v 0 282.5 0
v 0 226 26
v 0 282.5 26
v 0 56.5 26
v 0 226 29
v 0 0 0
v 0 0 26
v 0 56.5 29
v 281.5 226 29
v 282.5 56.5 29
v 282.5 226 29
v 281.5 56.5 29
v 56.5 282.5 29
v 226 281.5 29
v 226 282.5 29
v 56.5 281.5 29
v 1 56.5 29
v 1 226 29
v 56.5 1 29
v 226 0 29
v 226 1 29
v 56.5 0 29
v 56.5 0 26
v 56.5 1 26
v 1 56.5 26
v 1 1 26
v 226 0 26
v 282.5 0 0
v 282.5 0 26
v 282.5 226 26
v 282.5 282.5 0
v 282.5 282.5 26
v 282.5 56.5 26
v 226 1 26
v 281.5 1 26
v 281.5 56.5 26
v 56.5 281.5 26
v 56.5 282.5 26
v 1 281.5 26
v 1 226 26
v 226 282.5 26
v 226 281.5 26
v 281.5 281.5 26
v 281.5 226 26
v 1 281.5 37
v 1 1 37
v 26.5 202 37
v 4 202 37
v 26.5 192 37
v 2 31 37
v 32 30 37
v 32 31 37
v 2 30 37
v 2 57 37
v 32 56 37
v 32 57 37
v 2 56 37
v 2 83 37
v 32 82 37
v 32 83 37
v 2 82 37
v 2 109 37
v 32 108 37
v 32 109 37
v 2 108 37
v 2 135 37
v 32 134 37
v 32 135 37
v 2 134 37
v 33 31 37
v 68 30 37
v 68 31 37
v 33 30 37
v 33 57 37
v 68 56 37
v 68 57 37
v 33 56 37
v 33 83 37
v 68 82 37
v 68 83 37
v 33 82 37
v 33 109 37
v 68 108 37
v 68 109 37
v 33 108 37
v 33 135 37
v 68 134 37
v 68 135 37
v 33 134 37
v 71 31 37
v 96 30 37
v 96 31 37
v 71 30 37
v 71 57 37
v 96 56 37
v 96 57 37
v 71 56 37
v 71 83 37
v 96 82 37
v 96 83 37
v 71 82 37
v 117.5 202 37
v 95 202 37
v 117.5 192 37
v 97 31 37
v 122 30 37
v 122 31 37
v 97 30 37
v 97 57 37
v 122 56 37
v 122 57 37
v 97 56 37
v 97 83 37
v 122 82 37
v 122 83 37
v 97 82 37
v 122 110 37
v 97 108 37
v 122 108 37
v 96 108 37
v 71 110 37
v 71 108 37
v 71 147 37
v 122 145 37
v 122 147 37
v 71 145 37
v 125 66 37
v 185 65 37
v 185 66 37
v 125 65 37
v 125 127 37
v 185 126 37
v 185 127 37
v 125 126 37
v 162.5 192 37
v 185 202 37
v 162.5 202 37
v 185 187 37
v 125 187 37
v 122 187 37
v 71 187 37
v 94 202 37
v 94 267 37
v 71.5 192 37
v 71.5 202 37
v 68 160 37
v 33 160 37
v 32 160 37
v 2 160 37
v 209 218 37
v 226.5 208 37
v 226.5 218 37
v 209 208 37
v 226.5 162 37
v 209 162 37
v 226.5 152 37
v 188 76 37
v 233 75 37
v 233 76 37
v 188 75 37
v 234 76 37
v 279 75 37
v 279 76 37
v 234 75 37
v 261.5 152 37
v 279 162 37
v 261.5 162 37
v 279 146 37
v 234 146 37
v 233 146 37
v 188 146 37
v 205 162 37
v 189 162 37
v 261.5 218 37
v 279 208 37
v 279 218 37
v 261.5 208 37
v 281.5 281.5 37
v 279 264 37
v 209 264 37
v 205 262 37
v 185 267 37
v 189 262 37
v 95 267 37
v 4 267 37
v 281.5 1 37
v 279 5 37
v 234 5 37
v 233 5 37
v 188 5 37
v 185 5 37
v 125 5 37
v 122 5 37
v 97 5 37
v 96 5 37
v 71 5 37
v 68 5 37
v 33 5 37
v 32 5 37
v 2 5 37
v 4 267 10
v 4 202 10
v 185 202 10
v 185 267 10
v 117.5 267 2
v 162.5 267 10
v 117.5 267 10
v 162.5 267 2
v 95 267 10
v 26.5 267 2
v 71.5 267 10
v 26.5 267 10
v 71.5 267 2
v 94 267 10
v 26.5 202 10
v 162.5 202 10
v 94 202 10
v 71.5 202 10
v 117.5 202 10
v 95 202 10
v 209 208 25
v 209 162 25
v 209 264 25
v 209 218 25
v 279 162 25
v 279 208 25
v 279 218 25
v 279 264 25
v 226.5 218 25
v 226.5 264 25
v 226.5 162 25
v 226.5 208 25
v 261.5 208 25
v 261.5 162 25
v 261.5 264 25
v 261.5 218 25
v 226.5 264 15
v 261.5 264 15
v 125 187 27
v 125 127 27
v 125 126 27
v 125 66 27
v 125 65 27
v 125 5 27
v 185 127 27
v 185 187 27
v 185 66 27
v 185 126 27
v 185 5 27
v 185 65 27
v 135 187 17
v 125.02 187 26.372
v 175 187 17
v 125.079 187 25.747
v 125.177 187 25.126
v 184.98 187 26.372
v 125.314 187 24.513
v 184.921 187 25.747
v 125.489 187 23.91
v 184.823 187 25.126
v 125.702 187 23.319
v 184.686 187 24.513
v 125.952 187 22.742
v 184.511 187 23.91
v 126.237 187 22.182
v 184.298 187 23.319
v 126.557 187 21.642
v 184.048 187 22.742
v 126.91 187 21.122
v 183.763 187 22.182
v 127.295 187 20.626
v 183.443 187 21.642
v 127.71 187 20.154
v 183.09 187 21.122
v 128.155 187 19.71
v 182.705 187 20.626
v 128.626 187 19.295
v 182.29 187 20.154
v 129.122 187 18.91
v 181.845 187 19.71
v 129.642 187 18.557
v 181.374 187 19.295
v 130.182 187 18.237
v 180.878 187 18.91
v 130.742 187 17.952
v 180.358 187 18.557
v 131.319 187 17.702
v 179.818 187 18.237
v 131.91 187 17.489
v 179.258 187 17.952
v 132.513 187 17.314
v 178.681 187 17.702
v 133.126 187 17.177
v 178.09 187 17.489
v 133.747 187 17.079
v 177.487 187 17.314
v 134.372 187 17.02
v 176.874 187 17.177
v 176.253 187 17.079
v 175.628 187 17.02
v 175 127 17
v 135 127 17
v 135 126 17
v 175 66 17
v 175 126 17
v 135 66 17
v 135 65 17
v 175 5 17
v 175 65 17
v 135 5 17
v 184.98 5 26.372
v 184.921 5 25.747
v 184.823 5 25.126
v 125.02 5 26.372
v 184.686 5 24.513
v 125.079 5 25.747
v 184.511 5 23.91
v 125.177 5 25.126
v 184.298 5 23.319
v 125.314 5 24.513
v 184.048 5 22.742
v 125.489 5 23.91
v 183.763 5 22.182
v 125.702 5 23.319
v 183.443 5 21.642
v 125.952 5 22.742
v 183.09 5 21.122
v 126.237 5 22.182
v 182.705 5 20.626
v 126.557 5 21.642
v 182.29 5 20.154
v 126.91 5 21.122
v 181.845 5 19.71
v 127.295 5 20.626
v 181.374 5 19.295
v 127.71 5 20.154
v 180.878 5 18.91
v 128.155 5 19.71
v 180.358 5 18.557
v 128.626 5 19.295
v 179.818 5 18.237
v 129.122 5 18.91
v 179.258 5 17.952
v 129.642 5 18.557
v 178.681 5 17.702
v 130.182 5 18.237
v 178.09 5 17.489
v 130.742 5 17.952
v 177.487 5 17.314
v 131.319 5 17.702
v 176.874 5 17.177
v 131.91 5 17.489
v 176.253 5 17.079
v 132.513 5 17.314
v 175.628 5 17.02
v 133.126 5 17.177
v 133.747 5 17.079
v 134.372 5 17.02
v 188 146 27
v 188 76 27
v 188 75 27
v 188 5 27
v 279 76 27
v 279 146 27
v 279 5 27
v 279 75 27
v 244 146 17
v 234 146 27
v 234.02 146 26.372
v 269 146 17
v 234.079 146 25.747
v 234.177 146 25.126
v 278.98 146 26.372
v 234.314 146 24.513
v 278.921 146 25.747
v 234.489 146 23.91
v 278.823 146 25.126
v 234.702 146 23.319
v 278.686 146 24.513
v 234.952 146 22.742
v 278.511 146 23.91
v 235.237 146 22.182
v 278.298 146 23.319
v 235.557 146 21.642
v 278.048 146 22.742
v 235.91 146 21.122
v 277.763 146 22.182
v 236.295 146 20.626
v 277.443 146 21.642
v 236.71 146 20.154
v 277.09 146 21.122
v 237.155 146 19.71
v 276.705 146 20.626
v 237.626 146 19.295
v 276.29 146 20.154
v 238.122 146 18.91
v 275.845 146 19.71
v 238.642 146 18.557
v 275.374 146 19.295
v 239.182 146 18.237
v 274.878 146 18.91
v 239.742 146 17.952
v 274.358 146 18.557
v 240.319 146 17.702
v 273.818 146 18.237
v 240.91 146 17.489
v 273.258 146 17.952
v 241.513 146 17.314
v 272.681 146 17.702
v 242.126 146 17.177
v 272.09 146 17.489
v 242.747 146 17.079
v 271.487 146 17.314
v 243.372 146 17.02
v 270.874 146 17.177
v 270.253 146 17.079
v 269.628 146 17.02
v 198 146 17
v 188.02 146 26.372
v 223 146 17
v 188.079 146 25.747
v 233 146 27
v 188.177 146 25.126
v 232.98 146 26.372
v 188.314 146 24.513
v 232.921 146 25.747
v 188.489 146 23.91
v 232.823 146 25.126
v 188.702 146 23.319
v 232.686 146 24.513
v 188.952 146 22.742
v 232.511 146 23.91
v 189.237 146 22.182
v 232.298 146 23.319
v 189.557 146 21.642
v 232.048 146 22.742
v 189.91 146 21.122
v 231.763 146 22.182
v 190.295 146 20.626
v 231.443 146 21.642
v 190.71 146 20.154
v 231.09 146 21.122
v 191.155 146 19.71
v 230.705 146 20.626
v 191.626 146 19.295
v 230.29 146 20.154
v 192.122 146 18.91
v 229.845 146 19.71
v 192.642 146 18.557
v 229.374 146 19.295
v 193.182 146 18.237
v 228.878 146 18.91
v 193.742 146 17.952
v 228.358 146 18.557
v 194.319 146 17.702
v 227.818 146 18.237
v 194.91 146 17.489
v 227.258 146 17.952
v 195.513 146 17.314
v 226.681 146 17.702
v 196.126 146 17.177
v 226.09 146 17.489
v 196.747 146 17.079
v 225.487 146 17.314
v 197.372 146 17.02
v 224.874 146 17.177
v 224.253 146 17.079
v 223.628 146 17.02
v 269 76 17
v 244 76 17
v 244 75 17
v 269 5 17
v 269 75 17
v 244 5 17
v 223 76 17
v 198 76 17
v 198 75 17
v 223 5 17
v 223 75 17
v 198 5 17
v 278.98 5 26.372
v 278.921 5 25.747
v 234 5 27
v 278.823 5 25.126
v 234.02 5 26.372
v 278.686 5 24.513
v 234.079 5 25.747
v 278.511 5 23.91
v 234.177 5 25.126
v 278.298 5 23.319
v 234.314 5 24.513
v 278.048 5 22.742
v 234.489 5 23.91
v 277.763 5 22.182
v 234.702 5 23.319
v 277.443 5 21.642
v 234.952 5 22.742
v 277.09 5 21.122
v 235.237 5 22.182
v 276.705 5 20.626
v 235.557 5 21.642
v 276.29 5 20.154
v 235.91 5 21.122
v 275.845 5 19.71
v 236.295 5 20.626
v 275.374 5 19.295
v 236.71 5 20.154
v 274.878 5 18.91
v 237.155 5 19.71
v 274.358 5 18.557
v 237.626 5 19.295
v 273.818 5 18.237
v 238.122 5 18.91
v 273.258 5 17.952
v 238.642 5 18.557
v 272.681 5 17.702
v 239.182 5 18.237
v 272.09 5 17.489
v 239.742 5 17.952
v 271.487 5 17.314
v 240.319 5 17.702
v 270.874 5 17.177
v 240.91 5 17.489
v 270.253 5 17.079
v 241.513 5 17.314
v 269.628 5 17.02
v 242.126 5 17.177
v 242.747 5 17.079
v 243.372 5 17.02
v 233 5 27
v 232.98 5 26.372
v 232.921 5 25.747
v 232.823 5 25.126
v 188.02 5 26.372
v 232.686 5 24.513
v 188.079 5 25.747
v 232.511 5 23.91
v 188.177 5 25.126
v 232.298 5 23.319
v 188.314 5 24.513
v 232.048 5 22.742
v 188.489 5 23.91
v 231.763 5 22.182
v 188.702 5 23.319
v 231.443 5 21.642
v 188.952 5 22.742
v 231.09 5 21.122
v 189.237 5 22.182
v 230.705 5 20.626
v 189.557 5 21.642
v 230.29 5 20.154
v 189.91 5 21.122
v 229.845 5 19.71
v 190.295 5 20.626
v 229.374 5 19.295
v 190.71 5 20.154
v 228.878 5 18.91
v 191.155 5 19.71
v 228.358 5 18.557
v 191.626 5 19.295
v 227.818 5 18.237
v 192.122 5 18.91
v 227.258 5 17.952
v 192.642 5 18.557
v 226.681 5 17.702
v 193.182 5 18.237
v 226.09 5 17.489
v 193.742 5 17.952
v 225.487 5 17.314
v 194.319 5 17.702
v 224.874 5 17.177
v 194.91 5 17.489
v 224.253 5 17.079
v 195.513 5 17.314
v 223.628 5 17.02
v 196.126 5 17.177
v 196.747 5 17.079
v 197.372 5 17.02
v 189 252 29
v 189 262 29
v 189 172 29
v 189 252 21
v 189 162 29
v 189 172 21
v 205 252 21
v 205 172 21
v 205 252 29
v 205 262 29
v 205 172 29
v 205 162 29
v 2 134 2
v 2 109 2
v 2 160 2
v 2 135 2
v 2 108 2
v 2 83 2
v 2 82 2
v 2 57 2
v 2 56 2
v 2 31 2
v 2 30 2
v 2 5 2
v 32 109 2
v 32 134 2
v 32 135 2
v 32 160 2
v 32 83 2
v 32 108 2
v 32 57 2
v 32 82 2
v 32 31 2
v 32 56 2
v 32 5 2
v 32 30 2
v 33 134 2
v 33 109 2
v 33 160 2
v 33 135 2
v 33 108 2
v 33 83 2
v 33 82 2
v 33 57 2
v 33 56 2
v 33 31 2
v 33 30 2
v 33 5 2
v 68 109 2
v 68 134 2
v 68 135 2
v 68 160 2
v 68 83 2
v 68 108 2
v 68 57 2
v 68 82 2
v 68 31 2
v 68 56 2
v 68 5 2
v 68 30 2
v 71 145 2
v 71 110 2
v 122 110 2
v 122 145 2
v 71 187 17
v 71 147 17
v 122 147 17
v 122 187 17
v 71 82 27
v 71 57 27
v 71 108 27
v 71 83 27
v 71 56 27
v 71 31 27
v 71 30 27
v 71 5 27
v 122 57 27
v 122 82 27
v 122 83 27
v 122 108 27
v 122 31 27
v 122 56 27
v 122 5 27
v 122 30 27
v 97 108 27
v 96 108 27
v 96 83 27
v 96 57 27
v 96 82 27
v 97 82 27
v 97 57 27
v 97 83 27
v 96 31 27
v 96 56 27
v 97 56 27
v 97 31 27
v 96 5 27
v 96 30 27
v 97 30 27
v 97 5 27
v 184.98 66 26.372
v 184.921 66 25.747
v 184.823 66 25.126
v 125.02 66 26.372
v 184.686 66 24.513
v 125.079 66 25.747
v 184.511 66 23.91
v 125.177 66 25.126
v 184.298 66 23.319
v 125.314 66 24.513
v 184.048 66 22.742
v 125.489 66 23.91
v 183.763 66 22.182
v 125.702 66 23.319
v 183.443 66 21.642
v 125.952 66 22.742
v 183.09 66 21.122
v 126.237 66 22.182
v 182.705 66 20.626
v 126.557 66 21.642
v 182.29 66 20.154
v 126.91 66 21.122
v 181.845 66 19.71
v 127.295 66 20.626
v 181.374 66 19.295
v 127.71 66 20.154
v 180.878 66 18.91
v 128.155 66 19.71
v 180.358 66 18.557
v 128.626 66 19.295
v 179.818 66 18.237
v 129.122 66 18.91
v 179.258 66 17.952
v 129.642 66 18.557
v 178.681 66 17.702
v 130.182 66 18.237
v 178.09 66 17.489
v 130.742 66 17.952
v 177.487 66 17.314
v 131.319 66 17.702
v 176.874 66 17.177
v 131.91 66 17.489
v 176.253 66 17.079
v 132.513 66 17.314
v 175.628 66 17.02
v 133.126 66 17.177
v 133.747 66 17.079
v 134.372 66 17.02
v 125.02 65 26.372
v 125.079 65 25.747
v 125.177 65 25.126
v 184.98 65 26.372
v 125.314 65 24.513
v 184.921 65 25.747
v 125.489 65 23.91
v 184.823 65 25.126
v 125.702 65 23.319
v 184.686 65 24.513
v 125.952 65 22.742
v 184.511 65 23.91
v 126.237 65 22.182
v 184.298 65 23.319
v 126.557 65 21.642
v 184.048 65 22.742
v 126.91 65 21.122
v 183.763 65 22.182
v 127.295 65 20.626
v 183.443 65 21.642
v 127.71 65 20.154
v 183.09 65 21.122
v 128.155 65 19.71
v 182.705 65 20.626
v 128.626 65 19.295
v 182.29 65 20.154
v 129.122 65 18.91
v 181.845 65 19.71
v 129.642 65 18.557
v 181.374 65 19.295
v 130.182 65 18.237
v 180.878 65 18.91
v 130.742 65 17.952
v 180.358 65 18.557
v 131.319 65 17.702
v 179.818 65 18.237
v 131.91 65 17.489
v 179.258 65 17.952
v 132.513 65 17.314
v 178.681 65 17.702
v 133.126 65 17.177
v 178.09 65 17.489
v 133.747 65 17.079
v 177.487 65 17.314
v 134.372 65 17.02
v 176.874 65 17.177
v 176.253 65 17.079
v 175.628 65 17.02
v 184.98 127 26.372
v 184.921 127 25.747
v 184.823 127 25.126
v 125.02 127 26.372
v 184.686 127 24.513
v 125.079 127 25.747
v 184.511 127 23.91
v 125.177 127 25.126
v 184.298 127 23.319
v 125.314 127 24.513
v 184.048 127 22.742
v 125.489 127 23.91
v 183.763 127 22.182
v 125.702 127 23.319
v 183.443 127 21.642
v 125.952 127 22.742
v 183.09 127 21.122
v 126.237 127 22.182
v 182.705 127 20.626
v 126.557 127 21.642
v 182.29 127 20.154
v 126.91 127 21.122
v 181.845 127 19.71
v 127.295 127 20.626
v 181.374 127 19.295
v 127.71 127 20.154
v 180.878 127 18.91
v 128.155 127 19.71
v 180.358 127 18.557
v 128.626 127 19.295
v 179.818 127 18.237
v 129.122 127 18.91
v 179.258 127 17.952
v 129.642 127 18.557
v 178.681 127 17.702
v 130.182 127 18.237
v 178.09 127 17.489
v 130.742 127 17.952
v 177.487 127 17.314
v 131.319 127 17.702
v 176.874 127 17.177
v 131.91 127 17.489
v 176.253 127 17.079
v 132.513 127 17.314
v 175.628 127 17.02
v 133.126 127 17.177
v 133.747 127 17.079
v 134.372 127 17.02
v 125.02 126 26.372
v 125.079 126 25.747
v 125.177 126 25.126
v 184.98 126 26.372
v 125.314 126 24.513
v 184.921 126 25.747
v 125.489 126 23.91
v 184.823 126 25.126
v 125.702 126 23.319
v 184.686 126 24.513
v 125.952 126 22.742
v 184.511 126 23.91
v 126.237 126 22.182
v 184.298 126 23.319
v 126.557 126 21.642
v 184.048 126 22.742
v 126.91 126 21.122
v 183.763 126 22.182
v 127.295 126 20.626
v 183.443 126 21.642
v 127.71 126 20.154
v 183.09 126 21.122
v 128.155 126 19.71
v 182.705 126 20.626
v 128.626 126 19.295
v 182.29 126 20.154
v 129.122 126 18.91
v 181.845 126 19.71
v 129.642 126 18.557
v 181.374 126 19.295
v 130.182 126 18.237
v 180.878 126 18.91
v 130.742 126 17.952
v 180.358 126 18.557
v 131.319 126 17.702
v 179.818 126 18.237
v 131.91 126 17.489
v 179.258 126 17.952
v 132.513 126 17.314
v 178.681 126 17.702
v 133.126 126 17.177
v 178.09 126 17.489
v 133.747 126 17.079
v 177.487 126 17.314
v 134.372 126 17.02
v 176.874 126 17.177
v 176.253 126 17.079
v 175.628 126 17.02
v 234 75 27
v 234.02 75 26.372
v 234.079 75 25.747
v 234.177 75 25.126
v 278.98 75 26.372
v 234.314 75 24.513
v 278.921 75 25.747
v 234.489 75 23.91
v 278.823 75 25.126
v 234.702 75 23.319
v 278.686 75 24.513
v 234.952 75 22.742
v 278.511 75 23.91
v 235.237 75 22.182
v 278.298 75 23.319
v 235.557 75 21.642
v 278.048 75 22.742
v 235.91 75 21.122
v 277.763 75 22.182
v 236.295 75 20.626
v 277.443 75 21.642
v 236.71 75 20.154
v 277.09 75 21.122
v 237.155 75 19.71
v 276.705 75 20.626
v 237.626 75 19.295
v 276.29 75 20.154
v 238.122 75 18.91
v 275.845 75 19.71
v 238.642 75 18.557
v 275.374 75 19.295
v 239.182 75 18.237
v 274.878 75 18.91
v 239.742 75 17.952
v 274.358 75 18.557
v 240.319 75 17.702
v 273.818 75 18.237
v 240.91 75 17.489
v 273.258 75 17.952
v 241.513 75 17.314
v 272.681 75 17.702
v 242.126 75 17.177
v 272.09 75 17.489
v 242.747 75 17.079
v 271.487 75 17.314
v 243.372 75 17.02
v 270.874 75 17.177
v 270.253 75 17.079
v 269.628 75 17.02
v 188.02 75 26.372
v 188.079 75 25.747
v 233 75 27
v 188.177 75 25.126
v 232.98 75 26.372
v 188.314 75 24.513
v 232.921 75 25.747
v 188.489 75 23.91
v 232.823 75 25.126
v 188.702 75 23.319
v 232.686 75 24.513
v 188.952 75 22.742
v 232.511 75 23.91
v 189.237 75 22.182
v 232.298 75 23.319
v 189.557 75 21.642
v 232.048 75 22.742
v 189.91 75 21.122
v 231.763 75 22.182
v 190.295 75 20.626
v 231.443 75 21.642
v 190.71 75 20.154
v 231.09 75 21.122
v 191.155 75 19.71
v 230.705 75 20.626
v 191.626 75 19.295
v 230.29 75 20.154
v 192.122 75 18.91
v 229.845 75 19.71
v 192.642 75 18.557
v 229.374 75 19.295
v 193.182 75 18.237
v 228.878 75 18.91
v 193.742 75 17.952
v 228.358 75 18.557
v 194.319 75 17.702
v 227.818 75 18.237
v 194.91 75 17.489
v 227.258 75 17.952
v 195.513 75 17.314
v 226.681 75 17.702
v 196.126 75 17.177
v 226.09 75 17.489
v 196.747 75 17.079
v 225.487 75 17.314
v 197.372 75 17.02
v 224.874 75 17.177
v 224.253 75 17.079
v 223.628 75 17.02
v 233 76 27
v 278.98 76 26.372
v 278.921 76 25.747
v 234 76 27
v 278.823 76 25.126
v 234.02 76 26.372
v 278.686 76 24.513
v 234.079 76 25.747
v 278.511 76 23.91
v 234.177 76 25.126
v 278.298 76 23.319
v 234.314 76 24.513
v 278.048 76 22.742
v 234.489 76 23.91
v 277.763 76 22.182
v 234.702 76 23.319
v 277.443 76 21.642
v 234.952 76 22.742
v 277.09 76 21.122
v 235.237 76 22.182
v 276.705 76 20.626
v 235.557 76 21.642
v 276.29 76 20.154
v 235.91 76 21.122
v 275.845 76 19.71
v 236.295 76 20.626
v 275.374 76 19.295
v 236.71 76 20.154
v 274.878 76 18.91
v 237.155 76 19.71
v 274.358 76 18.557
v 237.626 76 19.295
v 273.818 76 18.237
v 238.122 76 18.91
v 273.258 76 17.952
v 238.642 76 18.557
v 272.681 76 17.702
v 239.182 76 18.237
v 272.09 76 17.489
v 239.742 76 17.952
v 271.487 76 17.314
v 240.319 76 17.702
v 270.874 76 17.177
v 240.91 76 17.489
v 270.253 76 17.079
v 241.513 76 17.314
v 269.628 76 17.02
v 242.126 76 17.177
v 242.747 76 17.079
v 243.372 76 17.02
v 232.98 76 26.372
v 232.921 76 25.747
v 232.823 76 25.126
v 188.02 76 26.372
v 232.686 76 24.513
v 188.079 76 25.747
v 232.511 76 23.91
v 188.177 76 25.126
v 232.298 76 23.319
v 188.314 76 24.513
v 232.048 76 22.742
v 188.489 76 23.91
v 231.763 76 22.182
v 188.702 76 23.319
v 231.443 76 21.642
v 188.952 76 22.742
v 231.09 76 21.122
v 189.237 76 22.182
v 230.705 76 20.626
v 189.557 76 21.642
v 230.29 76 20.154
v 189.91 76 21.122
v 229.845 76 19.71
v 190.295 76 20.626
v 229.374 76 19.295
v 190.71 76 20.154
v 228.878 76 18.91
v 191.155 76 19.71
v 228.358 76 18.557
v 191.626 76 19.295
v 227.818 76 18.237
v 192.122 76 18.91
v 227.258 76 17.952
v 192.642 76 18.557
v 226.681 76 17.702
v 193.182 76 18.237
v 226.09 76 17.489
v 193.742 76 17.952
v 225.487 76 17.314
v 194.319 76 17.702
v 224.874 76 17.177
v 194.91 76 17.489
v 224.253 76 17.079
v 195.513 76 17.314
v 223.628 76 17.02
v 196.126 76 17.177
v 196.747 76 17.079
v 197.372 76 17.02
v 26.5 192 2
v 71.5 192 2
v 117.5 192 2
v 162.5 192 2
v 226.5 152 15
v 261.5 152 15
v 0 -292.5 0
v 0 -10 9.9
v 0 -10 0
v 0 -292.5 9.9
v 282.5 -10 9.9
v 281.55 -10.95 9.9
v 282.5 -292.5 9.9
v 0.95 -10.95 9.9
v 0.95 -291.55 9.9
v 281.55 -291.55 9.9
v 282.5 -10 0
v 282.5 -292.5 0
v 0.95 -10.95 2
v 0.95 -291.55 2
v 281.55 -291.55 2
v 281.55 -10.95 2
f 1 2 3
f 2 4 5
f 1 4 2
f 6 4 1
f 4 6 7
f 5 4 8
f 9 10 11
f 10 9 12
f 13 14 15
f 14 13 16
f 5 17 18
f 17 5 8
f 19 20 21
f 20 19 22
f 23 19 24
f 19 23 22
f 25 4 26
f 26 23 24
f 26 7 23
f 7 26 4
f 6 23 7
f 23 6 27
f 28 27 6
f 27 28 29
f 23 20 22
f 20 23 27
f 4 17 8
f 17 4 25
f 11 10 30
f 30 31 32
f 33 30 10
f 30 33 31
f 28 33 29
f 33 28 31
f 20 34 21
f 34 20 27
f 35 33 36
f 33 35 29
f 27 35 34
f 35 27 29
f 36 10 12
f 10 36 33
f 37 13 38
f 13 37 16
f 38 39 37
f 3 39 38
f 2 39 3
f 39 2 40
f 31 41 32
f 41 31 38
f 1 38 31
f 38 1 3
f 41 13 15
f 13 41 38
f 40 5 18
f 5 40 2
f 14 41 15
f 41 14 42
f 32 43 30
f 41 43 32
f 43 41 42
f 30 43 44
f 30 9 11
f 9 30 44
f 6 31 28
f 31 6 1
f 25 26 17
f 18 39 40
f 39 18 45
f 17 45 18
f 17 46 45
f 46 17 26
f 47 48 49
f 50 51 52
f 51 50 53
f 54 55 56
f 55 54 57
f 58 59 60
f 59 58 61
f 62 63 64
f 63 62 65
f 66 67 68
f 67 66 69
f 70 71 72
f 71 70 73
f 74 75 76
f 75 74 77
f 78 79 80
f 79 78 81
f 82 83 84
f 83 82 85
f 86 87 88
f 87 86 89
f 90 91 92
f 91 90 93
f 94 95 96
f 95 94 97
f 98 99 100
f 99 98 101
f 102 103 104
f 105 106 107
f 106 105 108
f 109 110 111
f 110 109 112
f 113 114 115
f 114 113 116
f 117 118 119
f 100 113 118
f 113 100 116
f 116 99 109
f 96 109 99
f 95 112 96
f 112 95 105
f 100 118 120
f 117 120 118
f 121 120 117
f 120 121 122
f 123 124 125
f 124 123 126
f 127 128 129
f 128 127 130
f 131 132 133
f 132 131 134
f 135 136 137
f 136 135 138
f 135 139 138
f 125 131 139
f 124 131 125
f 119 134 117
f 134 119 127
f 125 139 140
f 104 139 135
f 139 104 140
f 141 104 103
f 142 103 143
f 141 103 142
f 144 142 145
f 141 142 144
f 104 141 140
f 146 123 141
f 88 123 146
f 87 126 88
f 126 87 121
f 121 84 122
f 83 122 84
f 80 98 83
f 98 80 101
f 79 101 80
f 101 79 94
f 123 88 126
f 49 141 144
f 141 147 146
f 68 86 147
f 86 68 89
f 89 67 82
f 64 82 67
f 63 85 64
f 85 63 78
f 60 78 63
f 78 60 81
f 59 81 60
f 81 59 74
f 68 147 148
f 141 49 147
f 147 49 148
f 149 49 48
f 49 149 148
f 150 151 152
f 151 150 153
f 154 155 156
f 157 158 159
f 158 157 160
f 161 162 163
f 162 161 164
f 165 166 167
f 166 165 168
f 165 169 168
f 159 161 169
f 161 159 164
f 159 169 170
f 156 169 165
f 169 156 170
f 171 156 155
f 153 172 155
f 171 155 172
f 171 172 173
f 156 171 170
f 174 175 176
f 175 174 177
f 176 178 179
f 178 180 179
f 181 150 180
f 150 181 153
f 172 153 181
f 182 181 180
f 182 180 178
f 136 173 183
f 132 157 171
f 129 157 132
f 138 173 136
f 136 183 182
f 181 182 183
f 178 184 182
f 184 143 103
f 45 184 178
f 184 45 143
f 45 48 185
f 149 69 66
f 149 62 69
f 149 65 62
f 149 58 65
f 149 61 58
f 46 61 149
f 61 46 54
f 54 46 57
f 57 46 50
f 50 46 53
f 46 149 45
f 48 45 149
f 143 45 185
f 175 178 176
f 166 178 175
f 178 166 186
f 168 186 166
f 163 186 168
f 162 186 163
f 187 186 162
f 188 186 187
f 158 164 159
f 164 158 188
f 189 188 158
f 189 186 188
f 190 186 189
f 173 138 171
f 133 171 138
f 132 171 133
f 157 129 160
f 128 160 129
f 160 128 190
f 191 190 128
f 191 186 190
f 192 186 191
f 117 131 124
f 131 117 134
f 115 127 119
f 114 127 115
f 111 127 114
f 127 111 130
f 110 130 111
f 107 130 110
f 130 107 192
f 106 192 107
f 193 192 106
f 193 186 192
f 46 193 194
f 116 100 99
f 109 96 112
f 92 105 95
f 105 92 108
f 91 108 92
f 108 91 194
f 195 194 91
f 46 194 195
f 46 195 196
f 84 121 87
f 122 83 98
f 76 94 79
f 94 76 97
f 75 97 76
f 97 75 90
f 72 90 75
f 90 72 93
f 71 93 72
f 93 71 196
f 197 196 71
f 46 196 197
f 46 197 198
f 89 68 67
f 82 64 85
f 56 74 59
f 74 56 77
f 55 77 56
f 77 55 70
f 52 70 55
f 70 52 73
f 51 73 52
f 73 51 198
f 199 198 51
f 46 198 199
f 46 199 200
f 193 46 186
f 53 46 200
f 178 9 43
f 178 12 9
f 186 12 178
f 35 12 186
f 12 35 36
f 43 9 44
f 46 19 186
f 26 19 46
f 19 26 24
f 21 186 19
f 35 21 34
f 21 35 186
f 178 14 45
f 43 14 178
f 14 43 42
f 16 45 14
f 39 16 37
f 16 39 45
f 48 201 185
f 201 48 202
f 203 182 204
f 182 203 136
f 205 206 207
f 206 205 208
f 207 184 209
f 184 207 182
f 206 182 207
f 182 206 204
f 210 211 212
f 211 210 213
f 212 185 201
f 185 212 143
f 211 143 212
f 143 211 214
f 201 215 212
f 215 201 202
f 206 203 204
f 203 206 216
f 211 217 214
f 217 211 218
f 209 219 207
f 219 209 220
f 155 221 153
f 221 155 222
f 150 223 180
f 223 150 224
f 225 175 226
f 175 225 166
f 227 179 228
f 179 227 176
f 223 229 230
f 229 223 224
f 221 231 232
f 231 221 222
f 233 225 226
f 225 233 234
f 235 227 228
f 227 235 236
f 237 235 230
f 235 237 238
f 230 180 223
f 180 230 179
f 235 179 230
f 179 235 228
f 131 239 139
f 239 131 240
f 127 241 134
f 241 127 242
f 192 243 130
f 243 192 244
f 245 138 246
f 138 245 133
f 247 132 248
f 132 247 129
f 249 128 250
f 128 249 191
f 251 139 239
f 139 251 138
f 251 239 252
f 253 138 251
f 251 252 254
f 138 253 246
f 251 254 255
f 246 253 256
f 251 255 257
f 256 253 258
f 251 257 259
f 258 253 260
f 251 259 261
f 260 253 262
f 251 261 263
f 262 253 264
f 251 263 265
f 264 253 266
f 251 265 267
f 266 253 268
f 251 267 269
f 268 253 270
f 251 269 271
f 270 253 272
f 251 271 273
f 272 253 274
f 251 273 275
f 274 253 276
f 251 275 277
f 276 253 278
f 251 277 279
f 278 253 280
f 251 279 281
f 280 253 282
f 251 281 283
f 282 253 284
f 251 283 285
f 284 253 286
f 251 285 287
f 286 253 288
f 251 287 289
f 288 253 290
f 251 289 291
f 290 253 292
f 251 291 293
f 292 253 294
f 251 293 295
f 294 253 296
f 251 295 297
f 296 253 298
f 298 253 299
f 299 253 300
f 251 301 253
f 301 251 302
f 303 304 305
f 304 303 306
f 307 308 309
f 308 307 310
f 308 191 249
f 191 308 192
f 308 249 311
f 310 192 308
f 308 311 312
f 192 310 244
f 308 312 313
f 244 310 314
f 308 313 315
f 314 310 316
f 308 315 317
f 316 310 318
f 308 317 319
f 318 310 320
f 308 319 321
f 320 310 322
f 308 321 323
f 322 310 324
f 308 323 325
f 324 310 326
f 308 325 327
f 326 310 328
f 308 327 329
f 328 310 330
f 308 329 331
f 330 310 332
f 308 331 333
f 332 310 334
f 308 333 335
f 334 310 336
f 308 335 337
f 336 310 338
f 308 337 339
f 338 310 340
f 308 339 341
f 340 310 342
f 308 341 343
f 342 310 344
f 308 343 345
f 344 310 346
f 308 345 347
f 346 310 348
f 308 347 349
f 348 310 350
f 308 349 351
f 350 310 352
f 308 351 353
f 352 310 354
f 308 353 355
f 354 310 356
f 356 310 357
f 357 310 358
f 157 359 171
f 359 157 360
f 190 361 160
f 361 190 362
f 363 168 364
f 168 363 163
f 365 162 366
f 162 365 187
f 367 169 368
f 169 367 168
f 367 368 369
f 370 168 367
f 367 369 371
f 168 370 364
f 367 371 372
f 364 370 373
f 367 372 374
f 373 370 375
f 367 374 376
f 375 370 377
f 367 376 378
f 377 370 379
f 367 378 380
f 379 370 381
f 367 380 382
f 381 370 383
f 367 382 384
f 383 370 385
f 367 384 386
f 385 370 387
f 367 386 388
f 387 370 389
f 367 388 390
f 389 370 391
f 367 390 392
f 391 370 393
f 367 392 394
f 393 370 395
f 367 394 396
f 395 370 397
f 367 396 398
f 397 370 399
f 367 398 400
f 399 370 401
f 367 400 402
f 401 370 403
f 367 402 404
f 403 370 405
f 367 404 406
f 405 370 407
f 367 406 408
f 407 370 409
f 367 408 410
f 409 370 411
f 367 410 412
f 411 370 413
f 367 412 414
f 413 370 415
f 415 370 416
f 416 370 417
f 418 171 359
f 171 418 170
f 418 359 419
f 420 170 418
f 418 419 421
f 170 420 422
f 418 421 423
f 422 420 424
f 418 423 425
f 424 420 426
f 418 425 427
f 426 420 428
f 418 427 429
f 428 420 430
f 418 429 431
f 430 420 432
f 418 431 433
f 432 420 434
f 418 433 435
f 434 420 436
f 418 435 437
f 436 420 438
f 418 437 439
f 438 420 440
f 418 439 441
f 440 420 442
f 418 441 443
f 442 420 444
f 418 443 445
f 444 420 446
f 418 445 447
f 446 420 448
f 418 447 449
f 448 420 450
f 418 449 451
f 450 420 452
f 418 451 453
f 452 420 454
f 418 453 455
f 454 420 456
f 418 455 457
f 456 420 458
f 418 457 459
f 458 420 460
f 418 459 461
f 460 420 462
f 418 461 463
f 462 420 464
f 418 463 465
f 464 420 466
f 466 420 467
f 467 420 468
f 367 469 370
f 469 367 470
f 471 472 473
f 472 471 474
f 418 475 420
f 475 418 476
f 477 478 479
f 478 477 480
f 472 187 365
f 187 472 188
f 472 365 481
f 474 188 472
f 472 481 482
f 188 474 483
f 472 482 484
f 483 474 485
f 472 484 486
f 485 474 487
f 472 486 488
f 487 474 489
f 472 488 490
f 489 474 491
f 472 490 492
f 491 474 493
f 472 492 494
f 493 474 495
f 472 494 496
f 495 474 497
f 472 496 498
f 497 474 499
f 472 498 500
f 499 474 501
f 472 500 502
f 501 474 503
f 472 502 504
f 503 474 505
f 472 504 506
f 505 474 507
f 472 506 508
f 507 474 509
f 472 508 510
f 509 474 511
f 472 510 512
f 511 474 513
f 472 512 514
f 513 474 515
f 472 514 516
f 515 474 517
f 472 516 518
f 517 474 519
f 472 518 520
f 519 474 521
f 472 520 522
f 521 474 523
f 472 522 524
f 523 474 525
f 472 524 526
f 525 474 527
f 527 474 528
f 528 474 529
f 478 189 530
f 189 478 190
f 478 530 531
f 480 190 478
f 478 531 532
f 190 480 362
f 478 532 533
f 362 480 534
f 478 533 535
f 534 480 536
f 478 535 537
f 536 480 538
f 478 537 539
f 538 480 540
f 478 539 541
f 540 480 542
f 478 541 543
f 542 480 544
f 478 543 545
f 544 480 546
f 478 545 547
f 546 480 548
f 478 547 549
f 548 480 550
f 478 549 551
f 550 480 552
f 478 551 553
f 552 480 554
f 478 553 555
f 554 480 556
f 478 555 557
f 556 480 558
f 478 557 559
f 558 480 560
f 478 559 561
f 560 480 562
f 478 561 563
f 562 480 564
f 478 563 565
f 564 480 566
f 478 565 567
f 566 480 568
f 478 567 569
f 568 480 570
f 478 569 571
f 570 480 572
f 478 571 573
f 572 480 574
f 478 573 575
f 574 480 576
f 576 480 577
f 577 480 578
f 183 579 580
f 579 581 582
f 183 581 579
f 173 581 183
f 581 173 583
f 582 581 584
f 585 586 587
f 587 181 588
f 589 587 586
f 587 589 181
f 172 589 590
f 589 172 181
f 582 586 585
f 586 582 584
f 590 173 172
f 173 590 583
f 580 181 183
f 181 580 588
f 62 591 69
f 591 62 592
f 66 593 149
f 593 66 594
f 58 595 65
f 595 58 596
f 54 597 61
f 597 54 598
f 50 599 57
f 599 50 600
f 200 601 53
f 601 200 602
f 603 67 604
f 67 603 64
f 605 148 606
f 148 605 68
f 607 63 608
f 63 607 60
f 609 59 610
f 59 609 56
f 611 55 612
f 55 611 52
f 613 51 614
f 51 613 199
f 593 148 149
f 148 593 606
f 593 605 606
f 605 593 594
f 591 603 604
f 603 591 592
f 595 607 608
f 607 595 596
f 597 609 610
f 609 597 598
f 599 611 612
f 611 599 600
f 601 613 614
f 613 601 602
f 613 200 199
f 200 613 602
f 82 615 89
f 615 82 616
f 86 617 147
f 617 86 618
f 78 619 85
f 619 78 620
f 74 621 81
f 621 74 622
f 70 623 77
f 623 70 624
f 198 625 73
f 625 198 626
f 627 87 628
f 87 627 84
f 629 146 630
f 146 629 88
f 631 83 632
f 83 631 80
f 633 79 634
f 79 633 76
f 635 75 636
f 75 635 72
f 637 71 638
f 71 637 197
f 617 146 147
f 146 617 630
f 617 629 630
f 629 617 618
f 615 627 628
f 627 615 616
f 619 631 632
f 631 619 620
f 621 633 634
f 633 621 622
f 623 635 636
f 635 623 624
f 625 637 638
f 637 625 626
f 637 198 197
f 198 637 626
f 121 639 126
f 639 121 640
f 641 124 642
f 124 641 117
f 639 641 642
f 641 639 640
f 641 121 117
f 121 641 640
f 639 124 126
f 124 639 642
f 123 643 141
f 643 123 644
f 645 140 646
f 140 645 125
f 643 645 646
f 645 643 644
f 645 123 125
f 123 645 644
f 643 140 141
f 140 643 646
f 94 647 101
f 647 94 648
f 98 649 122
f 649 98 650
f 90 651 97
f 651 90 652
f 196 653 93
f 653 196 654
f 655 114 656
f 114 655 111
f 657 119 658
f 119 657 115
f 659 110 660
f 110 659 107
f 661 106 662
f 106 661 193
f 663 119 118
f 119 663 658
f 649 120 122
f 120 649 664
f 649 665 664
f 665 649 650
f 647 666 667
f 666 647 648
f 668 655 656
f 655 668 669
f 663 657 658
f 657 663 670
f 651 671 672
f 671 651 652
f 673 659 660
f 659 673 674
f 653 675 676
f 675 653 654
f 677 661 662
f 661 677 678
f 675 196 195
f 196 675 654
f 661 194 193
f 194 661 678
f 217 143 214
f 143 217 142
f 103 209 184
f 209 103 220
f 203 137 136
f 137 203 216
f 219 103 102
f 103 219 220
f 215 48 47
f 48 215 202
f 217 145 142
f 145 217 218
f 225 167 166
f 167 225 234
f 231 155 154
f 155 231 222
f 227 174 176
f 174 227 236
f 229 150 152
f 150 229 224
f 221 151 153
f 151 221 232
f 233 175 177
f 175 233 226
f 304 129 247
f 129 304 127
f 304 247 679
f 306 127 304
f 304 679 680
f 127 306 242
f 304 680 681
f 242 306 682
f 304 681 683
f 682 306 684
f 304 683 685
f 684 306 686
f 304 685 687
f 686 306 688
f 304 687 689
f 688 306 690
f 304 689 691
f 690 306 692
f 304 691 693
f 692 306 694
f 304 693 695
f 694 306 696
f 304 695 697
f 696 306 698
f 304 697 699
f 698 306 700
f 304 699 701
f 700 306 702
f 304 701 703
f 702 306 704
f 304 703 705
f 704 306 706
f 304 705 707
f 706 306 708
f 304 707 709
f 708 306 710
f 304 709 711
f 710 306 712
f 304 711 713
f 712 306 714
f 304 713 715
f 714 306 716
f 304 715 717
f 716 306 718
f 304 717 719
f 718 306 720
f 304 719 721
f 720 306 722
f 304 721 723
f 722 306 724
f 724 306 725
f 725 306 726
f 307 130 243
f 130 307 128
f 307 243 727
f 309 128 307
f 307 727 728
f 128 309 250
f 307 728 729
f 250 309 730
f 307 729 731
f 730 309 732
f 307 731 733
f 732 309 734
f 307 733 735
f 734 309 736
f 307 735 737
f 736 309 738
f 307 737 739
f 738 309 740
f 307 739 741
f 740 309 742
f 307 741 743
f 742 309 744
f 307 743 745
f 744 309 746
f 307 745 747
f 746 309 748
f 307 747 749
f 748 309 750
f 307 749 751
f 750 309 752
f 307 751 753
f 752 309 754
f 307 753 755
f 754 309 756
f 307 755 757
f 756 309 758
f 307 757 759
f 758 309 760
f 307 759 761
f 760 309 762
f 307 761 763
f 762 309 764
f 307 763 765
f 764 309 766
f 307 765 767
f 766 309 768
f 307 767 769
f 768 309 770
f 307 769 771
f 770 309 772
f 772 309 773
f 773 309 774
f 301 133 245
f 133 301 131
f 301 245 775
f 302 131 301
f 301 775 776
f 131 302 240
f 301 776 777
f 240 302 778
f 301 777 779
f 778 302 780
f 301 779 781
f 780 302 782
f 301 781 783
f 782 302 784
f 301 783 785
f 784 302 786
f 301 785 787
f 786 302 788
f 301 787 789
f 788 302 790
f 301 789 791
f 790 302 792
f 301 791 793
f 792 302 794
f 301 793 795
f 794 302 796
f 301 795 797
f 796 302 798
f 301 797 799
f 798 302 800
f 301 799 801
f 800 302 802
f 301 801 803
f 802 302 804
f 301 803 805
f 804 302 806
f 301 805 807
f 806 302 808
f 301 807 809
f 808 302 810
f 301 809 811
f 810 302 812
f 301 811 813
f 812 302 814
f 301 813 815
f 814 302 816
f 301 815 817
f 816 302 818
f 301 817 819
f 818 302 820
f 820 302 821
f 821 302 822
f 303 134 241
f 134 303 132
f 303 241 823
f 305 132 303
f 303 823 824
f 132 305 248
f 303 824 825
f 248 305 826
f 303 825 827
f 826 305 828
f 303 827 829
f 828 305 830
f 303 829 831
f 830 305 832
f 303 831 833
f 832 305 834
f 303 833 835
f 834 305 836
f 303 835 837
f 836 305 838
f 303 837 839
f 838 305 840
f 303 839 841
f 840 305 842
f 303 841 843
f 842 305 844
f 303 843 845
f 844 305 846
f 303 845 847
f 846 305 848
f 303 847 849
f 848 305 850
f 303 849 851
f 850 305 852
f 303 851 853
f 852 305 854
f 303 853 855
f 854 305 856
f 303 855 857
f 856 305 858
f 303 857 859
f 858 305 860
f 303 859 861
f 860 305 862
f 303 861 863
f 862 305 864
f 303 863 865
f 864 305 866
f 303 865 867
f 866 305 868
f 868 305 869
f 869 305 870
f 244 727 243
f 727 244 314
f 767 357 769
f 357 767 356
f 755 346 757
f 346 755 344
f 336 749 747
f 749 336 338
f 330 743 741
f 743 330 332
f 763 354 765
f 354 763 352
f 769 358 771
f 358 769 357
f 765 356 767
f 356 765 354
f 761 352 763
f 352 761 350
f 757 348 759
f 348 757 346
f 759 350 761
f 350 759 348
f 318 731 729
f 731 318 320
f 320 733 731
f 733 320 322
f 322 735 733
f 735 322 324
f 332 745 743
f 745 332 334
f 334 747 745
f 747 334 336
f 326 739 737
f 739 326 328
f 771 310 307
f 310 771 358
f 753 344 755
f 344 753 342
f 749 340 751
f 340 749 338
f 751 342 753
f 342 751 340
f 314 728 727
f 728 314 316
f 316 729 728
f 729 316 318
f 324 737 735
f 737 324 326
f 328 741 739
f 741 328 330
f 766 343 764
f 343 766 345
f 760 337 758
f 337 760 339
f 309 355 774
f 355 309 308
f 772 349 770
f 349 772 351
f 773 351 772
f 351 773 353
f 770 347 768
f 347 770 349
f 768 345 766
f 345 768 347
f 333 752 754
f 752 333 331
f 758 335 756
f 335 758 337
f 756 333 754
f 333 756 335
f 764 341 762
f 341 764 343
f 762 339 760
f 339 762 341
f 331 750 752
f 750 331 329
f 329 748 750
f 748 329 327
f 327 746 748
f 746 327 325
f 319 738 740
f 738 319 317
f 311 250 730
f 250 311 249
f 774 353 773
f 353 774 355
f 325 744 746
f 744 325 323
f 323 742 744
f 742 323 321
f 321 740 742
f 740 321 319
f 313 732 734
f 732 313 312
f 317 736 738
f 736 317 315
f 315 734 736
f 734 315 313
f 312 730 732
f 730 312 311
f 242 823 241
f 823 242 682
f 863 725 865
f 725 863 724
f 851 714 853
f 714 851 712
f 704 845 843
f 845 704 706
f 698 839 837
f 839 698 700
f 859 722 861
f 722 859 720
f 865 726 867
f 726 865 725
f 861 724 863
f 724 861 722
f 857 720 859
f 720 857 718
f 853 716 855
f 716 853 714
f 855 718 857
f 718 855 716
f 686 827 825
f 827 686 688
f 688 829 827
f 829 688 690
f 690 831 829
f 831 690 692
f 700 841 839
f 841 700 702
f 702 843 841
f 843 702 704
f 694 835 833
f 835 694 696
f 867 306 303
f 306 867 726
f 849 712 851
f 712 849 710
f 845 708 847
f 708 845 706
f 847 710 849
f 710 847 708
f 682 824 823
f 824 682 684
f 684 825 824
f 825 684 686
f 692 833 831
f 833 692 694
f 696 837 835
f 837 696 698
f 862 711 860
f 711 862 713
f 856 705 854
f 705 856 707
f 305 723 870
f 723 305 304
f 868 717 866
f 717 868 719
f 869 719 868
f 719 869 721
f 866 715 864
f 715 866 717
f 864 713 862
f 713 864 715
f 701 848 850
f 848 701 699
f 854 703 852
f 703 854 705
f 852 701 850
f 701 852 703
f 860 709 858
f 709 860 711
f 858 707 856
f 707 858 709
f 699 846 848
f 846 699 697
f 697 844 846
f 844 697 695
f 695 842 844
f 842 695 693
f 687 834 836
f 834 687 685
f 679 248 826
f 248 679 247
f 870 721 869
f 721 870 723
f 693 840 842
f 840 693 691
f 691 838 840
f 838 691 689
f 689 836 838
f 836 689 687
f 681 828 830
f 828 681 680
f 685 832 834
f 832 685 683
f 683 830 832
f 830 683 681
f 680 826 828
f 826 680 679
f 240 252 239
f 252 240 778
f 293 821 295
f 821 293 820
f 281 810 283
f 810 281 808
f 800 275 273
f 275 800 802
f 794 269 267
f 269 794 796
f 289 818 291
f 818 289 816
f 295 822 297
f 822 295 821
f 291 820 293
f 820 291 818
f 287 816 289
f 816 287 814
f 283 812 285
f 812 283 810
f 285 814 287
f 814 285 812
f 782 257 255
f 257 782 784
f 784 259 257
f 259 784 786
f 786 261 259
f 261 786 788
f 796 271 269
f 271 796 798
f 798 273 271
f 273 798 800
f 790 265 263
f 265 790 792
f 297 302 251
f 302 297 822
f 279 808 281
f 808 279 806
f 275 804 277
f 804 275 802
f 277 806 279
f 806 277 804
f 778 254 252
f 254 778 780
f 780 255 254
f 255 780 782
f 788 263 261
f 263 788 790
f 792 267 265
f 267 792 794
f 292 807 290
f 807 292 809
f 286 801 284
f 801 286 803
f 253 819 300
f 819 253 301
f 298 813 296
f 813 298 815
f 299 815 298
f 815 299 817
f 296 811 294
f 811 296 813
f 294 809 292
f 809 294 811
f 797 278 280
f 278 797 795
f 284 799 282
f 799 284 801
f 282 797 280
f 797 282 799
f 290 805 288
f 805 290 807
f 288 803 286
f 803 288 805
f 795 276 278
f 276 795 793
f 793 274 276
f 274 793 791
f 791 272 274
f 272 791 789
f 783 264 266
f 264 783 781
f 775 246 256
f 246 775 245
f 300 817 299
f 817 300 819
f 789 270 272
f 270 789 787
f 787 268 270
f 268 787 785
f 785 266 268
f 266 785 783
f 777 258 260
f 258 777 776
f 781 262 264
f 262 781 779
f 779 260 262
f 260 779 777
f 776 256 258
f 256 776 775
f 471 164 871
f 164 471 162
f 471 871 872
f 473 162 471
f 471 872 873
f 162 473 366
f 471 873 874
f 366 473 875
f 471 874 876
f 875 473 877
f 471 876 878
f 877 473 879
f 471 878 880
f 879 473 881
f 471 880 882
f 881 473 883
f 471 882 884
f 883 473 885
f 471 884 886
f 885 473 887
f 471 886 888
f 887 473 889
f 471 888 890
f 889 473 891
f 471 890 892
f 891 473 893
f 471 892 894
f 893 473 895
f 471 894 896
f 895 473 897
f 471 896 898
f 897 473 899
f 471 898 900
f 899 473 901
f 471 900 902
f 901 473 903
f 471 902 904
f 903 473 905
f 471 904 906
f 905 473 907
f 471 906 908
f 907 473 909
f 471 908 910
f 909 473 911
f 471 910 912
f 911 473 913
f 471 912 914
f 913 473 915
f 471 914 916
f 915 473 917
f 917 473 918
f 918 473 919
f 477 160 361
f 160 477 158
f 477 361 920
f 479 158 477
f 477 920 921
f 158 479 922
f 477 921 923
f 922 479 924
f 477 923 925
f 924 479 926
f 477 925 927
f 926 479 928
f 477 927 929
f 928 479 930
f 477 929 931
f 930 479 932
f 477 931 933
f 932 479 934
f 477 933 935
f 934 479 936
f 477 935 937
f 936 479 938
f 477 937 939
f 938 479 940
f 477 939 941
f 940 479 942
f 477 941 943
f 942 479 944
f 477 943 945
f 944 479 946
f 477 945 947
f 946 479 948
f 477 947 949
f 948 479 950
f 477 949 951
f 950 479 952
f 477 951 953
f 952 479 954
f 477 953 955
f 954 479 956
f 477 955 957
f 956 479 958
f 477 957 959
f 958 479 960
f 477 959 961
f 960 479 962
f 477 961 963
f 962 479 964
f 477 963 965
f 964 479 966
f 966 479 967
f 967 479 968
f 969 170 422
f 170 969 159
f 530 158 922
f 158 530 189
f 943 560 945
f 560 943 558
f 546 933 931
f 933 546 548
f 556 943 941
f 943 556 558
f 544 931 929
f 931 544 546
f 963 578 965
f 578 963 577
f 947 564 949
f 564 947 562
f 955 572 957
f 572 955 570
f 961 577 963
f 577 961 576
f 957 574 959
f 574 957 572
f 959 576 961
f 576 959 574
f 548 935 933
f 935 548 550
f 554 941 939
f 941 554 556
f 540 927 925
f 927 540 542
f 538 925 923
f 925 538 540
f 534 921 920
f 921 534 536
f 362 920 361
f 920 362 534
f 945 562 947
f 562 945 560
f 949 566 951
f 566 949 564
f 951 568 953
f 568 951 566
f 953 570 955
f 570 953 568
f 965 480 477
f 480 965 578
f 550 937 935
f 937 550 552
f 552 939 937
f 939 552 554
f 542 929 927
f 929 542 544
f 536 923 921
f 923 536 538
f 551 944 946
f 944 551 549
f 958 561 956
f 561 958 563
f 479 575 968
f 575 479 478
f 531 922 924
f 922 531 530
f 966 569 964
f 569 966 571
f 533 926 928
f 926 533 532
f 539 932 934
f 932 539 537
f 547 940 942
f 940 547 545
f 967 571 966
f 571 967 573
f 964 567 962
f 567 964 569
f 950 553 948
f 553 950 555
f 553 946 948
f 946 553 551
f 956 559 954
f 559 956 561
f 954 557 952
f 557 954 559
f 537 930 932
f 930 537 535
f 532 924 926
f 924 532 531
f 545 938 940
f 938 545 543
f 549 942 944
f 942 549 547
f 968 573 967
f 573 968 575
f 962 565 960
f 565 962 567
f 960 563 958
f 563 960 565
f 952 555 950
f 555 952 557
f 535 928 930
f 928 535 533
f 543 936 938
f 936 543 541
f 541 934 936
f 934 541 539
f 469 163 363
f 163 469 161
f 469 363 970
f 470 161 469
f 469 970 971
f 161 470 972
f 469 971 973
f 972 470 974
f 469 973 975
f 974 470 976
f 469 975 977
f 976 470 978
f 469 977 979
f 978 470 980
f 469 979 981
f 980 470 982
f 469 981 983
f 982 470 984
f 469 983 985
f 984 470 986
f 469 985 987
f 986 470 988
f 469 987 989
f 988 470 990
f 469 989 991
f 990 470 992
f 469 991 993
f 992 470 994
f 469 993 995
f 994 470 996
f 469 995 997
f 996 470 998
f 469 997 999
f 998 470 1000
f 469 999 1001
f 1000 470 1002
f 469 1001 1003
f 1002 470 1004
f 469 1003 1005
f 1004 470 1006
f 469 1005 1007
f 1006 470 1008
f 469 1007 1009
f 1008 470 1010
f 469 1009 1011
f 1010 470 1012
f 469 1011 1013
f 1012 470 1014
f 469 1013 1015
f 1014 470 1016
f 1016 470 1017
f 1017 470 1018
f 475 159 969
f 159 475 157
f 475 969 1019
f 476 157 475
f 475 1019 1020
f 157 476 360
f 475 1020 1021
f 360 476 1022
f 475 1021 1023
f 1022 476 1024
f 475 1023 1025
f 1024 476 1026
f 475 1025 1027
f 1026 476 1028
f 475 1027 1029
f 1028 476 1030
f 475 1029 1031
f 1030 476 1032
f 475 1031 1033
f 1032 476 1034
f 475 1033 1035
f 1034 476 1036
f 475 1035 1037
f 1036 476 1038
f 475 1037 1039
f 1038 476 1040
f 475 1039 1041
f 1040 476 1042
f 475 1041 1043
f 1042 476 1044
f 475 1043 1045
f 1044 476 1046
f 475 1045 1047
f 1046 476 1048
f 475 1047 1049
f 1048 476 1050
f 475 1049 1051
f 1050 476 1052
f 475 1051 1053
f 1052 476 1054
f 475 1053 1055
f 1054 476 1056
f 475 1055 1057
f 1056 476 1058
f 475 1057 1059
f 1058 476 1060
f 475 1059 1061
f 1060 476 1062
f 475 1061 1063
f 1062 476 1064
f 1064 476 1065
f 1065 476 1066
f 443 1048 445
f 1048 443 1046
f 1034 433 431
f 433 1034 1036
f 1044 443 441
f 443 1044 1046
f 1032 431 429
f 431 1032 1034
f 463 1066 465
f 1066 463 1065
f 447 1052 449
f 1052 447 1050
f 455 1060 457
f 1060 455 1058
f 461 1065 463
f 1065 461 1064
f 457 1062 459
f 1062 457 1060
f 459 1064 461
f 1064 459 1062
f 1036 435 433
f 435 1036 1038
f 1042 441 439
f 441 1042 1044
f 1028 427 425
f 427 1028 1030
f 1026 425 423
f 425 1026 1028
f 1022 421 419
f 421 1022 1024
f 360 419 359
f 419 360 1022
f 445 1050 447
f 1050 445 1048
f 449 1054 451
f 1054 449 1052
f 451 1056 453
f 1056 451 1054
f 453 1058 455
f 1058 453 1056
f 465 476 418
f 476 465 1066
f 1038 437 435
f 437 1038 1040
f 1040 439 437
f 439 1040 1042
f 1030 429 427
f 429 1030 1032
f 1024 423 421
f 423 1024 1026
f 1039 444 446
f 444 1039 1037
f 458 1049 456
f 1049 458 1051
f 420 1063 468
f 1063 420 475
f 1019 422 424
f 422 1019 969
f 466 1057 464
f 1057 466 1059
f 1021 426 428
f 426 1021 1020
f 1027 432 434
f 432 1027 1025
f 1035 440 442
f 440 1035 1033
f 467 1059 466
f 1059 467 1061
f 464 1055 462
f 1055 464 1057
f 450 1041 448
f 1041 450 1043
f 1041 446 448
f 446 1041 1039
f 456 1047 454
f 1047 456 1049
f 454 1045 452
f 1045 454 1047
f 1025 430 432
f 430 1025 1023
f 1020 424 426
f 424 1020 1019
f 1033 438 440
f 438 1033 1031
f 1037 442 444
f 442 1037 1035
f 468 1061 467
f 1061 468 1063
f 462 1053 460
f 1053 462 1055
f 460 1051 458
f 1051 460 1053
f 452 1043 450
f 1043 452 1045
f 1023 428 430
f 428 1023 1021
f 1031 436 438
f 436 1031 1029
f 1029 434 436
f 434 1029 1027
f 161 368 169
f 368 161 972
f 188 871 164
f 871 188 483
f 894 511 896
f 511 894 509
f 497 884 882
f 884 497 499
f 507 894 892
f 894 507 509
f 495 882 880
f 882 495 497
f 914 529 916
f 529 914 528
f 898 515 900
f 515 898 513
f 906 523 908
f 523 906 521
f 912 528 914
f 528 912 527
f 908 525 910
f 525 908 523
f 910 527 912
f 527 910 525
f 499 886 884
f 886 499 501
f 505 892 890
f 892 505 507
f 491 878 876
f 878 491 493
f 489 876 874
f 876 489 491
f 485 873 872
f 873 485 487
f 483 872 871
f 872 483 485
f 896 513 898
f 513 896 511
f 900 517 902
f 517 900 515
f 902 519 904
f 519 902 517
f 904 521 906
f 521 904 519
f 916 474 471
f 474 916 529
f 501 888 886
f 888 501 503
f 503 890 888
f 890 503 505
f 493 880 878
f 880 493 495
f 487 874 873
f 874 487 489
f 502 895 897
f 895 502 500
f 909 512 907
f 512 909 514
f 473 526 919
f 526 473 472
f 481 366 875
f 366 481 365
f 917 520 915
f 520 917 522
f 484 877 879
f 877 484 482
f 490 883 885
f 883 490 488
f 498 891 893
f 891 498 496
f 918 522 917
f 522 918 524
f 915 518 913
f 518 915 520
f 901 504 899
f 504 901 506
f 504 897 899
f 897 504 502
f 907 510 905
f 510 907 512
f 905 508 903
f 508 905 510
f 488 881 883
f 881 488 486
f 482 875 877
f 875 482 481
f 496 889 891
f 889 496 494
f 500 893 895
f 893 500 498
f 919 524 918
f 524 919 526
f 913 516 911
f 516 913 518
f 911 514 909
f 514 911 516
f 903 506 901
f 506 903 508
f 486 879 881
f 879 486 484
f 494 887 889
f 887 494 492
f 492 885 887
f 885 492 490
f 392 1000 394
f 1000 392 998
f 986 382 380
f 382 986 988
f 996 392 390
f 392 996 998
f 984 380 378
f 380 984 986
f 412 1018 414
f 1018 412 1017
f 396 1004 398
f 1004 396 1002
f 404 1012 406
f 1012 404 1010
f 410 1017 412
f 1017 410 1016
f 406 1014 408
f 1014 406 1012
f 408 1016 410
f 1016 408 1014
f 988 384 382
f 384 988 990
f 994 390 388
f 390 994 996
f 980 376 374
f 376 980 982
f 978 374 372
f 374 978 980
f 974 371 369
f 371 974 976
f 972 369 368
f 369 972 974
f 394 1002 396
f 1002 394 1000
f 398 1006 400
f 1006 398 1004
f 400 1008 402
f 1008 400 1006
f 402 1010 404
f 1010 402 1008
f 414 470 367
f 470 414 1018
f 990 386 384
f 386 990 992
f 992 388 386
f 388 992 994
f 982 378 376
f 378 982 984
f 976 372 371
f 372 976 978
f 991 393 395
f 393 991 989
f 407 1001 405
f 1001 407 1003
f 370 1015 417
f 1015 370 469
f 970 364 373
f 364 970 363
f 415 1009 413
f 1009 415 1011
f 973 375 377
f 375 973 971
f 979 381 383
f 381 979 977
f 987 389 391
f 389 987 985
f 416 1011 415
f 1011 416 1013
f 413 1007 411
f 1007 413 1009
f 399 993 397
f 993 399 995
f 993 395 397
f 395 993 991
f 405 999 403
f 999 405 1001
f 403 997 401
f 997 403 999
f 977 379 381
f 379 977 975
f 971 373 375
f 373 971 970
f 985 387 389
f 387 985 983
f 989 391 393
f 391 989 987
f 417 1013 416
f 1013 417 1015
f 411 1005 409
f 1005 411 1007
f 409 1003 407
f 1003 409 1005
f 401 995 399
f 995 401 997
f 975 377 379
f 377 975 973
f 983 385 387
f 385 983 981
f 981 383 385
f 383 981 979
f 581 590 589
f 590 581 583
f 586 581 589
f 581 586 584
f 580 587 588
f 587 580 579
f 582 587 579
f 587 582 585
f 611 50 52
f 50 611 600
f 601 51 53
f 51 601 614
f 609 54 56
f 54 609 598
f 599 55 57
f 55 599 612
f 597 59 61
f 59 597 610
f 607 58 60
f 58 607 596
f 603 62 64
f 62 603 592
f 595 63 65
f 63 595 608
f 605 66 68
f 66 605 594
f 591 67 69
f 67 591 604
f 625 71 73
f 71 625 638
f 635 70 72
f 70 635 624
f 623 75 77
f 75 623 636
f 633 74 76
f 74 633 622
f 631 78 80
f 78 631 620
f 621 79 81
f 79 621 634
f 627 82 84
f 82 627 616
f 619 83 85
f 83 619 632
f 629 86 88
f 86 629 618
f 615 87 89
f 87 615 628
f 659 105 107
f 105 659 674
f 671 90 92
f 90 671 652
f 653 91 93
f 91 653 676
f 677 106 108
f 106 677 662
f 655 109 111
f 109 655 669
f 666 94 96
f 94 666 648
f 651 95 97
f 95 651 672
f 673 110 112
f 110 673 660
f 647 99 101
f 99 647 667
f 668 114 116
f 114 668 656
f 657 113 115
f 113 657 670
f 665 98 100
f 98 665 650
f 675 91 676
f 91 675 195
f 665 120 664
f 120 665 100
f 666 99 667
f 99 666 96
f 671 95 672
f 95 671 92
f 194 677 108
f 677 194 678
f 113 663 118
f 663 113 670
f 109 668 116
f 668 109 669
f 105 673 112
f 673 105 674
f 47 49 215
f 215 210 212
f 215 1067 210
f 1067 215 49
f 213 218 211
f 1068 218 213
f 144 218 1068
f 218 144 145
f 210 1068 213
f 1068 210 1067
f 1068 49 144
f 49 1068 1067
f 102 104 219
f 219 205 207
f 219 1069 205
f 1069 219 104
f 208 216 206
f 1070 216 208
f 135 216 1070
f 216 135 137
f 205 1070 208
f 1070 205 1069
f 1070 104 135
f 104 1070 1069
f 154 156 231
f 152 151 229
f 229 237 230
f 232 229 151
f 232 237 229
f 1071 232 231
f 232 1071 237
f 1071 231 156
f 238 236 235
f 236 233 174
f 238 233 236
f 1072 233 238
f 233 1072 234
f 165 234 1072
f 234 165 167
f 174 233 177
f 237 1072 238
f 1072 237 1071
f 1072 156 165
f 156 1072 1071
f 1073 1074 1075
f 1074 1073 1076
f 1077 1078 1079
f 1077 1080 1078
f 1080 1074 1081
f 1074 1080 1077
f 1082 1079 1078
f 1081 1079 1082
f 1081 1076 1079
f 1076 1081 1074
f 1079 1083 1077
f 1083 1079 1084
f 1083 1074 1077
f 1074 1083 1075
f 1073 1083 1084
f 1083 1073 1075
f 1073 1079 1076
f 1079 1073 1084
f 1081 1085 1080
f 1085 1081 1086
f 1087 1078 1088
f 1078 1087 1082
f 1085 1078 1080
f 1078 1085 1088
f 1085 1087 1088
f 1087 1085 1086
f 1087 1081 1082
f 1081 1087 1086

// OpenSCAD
include <boardgame_insert_toolkit_lib.scad>;


// This is a working example of the Boardgame Insert Toolkit used to create a single large box insert
// for the Z-Man game, Pandemic. It is designed for a printer that can print 290mm x 210mm x 28mm.
// See the two box version for an example of a design for smaller printers.
// 
data =
[
    [   "1", // for large printers
        [
            [   "box_dimensions",                 [282.5, 282.5, 37.0] ],                       // float f -- default:[ 100, 100, 100]
            [ "enabled",                                    true ],

            [   "components",
                [
                    [   "cards",
                        [
                            ["type",                        "cards"],                   // "cards" | "chits" | "generic" -- default: "generic"
                            ["compartment_size",            [ 90.0, 65.0, 27.0] ],      // float f -- default:[ 10, 10, 10]
                            ["num_compartments",            [2, 1] ],                   // int i -- default: [1, 1]
                            ["position",                    [2, 190 ] ],          // float f | "center" | "max" -- default: "center"
                            ["extra_spacing",               [0.0, 0.0] ],                   // float f
                            ["enabled",                     true ],                     // true | false
                            ["rotation",                    0 ],                        // 0 | 1 | -1

                        ]
                    ],
                    [   "small cards",
                        [
                            ["enabled",                     true ],                     // true | false
                            ["type",                        "cards"],
                            ["compartment_size",            [ 70.0, 46.0, 12.0] ],
                            ["num_compartments",            [1, 2] ],
                            ["position",                    [207, 150 ] ],
                        ]
                    ],

                    [   "hearts & cheese & status",
                        [
                            ["enabled",                     true ],                     // true | false
                            ["type",                        "tokens"],
                            ["compartment_size",            [ 60.0, 60.0, 20.0] ],
                            ["num_compartments",            [1, 3] ],
                            ["position",                    [123, 3 ] ],
                        ]
                    ],

                    [   "misc tokens",
                        [
                            ["enabled",                     true ],                     // true | false
                            ["type",                        "tokens"],
                            ["compartment_size",            [ 45.0, 70.0, 20.0] ],
                            ["num_compartments",            [2, 2] ],
                            ["position",                    [186, 3 ] ],
                        ]
                    ],

                    [   "dice",
                        [
                            ["enabled",                     true ],                     // true | false
                            ["type",                        "chit_stack"],
                            ["compartment_size",            [ 16.0, 80.0, 16.0] ],
                            ["num_compartments",            [1, 1] ],
                            ["position",                    [187, 160 ] ],
                        ]
                    ],
                    [   "heroes",
                        [
                            ["enabled",                     true ],                     // true | false
                            ["type",                        ""],
                            ["compartment_size",            [ 30.0, 25.0, 35.0] ],
                            ["num_compartments",            [1, 6] ],
                            ["position",                    [0, 3 ] ],
                        ]
                    ],

                    [   "rats",
                        [
                            ["enabled",                     true ],                     // true | false
                            ["type",                        ""],
                            ["compartment_size",            [ 35.0, 25.0, 35.0] ],
                            ["num_compartments",            [1, 6] ],
                            ["position",                    [31, 3 ] ],
                        ]
                    ],

                    [   "millipede",
                        [
                            ["enabled",                     true ],                     // true | false
                            ["type",                        ""],
                            ["compartment_size",            [ 51.0, 35.0, 35.0] ],
                            ["num_compartments",            [1, 1] ],
                            ["position",                    [69, 108 ] ],
                        ]
                    ],

                    [   "spider",
                        [
                            ["enabled",                     true ],                     // true | false
                            ["type",                        ""],
                            ["compartment_size",            [ 51.0, 40.0, 20.0] ],
                            ["num_compartments",            [1, 1] ],
                            ["position",                    [69, 145 ] ],
                        ]
                    ],

                    [   "roaches",
                        [
                            ["enabled",                     true ],                     // true | false
                            ["type",                        ""],
                            ["compartment_size",            [ 25.0, 25.0, 10.0] ],
                            ["num_compartments",            [2, 4] ],
                            ["position",                    [69, 3 ] ],
                        ]
                    ],

                    
                    // more components here...
                ]
            ],
        ]
    ]
];


// for printing control.
b_print_lid = true;
b_print_box = true;

b_print_box = "29cm box"; // isolate one box to print

MakeAll();
